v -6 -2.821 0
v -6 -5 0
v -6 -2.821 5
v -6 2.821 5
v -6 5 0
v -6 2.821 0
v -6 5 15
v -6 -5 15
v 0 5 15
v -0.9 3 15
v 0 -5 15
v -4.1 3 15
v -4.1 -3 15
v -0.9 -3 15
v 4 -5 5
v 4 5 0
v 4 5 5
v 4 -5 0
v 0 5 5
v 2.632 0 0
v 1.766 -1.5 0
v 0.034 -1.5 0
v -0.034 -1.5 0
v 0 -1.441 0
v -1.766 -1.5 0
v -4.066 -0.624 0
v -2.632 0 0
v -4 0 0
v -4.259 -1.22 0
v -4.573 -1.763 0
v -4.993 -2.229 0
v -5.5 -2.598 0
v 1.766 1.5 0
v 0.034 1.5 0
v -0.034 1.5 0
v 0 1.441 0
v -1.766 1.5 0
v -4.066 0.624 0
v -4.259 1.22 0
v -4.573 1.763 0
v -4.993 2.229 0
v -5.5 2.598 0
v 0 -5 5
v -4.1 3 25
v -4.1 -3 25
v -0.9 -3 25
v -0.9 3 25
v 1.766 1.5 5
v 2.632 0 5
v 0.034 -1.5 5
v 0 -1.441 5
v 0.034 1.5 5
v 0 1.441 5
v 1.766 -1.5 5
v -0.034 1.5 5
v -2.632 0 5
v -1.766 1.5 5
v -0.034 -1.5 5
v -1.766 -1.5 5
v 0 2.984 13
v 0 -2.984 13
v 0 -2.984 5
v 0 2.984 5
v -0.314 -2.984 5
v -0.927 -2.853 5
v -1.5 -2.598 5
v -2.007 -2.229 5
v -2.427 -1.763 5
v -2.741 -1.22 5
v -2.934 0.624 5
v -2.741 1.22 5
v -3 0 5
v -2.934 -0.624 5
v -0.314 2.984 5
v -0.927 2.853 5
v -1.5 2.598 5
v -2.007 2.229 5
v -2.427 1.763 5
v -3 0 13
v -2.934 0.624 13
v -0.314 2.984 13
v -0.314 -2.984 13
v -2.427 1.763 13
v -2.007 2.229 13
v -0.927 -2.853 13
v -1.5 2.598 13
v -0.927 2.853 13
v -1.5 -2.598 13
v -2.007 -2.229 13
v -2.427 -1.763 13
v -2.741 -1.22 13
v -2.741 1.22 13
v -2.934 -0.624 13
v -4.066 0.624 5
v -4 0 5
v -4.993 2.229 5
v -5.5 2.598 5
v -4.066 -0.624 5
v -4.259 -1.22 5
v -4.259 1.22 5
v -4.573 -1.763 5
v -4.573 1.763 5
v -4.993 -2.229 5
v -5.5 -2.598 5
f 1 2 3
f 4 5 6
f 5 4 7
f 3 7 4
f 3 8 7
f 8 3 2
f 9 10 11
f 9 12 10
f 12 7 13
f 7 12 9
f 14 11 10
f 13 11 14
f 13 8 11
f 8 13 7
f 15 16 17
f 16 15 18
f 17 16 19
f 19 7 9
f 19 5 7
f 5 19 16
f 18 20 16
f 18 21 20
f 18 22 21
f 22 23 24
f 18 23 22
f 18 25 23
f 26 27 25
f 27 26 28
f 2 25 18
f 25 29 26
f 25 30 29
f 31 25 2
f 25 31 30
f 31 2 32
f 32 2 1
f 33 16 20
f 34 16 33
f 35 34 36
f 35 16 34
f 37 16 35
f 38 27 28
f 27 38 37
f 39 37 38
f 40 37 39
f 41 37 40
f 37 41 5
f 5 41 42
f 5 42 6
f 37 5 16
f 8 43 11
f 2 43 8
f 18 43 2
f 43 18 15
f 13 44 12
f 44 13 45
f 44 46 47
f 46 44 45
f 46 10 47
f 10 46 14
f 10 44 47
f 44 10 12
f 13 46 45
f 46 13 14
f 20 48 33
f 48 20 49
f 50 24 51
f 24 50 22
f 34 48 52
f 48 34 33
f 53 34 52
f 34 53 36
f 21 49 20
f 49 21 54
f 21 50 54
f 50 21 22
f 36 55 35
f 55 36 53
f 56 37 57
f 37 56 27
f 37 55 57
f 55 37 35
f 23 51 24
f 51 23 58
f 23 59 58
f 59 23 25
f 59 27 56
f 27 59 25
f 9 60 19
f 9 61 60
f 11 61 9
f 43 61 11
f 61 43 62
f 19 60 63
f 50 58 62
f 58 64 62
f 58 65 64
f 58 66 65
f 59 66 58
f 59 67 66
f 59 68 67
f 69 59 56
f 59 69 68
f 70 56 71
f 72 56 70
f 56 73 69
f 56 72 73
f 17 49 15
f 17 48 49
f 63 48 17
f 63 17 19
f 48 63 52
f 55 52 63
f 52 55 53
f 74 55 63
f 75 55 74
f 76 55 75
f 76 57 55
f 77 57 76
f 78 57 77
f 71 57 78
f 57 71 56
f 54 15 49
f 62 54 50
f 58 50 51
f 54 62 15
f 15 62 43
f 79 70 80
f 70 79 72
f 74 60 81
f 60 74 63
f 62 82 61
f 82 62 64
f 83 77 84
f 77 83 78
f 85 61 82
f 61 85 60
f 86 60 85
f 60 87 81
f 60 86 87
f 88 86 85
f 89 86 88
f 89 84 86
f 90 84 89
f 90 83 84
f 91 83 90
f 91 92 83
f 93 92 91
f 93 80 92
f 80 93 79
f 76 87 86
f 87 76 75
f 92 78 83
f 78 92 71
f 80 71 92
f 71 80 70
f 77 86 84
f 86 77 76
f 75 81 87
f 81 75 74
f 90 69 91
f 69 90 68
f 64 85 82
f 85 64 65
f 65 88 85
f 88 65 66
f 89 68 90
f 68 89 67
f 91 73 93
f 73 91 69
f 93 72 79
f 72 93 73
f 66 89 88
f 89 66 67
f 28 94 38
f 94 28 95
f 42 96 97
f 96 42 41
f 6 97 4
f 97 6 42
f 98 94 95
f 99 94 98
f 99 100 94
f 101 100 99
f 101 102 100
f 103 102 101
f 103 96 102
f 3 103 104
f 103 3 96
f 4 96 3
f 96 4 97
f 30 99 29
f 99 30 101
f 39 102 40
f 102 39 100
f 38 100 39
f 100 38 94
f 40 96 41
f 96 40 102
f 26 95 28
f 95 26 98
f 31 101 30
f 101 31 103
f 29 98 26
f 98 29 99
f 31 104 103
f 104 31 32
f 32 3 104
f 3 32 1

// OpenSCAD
// file: polyhole_re.scad
// polyholes - correct diameter for printing holes
//
// See http://hydraraptor.blogspot.com/2011/02/polyholes.html
//
// inspired by Josef Prusa (Prusa i3)
//
// GNU GPL v3
// R.E. 2017.06



function polyhole_n(r) = max(round(4 * r),3);
function polyhole_radius(r) = r / cos (180 / polyhole_n(r));

module polyhole(h, r, center = false) {
    rotate([0,0,0])
        cylinder(h = h, r = polyhole_radius(r), center = center, $fn = polyhole_n(r));
}


//test
high=20;
radius=4;
cylinder(high,r=radius,center=false);
translate([-3*radius,0,0])
  polyhole(high,radius,center=false);
echo("<b>Radius=</b>",radius);
echo("<b>polyhole_rad_n=</b>",polyhole_n(radius));
echo("<b>polyhole_radius=</b>",polyhole_radius(radius));
// file: pushfit_hole_re.scad
// pushfit_hole - holes for rods
// corrected diameter 
// extension on top for printing without briding problems
//
// inspired by Josef Prusa (Prusa i3)
//
// GNU GPL v3
// R.E.

use <polyhole_re.scad>

module pushfit_hole(length,diameter,overhang_angle=60,bridge_distance=0.4){
    // for better printing 45° < overhang_angle < 90° 
  
  radius = diameter / 2;
     
  polyhole(length,radius,center=false);
  if (overhang_angle >= 45 && overhang_angle < 90)
    difference(){
      translate([0,polyhole_radius(radius) * (sin(overhang_angle) - 1 / sqrt(2) + cos(overhang_angle)),length/2]) rotate([0,0,45]) cube(size = [polyhole_radius(radius),polyhole_radius(radius),length], center = true);
    translate([0,5/4*radius+bridge_distance,length/2]) cube([radius ,radius/2,length+1], center = true);
 }
}


//test
rotate(a=[90,0,0])
  pushfit_hole(50,8,60,0.3);
// main file
// Anet A6 X-End - X-Endstop
// for GT2 20T and 16T 
// 
// GNU GPL v3
// R.E. 2017.06

use <pushfit_hole_re.scad>
use <polyhole_re.scad>

difference(){
  union(){
    translate([-1,0,+7.5])
      cube([10,10,15],center=true);
    translate([-2.5,0,+25/2])
      cube([3.2,6,25],center=true);  
  }
  translate([.9,0,0])
    polyhole(20,r=1.5,center=true);
  translate([-.9,0,0])
    polyhole(20,r=1.5,center=true);
  translate([10,0,10+5])
    cube([20,30,20],center=true);  
  translate([0,0,5])
    cylinder(8,r=3,$fn=30,center=false);
  translate([-7,0,-1])
    cylinder(6,r=3,$fn=30,center=false);
  
}
